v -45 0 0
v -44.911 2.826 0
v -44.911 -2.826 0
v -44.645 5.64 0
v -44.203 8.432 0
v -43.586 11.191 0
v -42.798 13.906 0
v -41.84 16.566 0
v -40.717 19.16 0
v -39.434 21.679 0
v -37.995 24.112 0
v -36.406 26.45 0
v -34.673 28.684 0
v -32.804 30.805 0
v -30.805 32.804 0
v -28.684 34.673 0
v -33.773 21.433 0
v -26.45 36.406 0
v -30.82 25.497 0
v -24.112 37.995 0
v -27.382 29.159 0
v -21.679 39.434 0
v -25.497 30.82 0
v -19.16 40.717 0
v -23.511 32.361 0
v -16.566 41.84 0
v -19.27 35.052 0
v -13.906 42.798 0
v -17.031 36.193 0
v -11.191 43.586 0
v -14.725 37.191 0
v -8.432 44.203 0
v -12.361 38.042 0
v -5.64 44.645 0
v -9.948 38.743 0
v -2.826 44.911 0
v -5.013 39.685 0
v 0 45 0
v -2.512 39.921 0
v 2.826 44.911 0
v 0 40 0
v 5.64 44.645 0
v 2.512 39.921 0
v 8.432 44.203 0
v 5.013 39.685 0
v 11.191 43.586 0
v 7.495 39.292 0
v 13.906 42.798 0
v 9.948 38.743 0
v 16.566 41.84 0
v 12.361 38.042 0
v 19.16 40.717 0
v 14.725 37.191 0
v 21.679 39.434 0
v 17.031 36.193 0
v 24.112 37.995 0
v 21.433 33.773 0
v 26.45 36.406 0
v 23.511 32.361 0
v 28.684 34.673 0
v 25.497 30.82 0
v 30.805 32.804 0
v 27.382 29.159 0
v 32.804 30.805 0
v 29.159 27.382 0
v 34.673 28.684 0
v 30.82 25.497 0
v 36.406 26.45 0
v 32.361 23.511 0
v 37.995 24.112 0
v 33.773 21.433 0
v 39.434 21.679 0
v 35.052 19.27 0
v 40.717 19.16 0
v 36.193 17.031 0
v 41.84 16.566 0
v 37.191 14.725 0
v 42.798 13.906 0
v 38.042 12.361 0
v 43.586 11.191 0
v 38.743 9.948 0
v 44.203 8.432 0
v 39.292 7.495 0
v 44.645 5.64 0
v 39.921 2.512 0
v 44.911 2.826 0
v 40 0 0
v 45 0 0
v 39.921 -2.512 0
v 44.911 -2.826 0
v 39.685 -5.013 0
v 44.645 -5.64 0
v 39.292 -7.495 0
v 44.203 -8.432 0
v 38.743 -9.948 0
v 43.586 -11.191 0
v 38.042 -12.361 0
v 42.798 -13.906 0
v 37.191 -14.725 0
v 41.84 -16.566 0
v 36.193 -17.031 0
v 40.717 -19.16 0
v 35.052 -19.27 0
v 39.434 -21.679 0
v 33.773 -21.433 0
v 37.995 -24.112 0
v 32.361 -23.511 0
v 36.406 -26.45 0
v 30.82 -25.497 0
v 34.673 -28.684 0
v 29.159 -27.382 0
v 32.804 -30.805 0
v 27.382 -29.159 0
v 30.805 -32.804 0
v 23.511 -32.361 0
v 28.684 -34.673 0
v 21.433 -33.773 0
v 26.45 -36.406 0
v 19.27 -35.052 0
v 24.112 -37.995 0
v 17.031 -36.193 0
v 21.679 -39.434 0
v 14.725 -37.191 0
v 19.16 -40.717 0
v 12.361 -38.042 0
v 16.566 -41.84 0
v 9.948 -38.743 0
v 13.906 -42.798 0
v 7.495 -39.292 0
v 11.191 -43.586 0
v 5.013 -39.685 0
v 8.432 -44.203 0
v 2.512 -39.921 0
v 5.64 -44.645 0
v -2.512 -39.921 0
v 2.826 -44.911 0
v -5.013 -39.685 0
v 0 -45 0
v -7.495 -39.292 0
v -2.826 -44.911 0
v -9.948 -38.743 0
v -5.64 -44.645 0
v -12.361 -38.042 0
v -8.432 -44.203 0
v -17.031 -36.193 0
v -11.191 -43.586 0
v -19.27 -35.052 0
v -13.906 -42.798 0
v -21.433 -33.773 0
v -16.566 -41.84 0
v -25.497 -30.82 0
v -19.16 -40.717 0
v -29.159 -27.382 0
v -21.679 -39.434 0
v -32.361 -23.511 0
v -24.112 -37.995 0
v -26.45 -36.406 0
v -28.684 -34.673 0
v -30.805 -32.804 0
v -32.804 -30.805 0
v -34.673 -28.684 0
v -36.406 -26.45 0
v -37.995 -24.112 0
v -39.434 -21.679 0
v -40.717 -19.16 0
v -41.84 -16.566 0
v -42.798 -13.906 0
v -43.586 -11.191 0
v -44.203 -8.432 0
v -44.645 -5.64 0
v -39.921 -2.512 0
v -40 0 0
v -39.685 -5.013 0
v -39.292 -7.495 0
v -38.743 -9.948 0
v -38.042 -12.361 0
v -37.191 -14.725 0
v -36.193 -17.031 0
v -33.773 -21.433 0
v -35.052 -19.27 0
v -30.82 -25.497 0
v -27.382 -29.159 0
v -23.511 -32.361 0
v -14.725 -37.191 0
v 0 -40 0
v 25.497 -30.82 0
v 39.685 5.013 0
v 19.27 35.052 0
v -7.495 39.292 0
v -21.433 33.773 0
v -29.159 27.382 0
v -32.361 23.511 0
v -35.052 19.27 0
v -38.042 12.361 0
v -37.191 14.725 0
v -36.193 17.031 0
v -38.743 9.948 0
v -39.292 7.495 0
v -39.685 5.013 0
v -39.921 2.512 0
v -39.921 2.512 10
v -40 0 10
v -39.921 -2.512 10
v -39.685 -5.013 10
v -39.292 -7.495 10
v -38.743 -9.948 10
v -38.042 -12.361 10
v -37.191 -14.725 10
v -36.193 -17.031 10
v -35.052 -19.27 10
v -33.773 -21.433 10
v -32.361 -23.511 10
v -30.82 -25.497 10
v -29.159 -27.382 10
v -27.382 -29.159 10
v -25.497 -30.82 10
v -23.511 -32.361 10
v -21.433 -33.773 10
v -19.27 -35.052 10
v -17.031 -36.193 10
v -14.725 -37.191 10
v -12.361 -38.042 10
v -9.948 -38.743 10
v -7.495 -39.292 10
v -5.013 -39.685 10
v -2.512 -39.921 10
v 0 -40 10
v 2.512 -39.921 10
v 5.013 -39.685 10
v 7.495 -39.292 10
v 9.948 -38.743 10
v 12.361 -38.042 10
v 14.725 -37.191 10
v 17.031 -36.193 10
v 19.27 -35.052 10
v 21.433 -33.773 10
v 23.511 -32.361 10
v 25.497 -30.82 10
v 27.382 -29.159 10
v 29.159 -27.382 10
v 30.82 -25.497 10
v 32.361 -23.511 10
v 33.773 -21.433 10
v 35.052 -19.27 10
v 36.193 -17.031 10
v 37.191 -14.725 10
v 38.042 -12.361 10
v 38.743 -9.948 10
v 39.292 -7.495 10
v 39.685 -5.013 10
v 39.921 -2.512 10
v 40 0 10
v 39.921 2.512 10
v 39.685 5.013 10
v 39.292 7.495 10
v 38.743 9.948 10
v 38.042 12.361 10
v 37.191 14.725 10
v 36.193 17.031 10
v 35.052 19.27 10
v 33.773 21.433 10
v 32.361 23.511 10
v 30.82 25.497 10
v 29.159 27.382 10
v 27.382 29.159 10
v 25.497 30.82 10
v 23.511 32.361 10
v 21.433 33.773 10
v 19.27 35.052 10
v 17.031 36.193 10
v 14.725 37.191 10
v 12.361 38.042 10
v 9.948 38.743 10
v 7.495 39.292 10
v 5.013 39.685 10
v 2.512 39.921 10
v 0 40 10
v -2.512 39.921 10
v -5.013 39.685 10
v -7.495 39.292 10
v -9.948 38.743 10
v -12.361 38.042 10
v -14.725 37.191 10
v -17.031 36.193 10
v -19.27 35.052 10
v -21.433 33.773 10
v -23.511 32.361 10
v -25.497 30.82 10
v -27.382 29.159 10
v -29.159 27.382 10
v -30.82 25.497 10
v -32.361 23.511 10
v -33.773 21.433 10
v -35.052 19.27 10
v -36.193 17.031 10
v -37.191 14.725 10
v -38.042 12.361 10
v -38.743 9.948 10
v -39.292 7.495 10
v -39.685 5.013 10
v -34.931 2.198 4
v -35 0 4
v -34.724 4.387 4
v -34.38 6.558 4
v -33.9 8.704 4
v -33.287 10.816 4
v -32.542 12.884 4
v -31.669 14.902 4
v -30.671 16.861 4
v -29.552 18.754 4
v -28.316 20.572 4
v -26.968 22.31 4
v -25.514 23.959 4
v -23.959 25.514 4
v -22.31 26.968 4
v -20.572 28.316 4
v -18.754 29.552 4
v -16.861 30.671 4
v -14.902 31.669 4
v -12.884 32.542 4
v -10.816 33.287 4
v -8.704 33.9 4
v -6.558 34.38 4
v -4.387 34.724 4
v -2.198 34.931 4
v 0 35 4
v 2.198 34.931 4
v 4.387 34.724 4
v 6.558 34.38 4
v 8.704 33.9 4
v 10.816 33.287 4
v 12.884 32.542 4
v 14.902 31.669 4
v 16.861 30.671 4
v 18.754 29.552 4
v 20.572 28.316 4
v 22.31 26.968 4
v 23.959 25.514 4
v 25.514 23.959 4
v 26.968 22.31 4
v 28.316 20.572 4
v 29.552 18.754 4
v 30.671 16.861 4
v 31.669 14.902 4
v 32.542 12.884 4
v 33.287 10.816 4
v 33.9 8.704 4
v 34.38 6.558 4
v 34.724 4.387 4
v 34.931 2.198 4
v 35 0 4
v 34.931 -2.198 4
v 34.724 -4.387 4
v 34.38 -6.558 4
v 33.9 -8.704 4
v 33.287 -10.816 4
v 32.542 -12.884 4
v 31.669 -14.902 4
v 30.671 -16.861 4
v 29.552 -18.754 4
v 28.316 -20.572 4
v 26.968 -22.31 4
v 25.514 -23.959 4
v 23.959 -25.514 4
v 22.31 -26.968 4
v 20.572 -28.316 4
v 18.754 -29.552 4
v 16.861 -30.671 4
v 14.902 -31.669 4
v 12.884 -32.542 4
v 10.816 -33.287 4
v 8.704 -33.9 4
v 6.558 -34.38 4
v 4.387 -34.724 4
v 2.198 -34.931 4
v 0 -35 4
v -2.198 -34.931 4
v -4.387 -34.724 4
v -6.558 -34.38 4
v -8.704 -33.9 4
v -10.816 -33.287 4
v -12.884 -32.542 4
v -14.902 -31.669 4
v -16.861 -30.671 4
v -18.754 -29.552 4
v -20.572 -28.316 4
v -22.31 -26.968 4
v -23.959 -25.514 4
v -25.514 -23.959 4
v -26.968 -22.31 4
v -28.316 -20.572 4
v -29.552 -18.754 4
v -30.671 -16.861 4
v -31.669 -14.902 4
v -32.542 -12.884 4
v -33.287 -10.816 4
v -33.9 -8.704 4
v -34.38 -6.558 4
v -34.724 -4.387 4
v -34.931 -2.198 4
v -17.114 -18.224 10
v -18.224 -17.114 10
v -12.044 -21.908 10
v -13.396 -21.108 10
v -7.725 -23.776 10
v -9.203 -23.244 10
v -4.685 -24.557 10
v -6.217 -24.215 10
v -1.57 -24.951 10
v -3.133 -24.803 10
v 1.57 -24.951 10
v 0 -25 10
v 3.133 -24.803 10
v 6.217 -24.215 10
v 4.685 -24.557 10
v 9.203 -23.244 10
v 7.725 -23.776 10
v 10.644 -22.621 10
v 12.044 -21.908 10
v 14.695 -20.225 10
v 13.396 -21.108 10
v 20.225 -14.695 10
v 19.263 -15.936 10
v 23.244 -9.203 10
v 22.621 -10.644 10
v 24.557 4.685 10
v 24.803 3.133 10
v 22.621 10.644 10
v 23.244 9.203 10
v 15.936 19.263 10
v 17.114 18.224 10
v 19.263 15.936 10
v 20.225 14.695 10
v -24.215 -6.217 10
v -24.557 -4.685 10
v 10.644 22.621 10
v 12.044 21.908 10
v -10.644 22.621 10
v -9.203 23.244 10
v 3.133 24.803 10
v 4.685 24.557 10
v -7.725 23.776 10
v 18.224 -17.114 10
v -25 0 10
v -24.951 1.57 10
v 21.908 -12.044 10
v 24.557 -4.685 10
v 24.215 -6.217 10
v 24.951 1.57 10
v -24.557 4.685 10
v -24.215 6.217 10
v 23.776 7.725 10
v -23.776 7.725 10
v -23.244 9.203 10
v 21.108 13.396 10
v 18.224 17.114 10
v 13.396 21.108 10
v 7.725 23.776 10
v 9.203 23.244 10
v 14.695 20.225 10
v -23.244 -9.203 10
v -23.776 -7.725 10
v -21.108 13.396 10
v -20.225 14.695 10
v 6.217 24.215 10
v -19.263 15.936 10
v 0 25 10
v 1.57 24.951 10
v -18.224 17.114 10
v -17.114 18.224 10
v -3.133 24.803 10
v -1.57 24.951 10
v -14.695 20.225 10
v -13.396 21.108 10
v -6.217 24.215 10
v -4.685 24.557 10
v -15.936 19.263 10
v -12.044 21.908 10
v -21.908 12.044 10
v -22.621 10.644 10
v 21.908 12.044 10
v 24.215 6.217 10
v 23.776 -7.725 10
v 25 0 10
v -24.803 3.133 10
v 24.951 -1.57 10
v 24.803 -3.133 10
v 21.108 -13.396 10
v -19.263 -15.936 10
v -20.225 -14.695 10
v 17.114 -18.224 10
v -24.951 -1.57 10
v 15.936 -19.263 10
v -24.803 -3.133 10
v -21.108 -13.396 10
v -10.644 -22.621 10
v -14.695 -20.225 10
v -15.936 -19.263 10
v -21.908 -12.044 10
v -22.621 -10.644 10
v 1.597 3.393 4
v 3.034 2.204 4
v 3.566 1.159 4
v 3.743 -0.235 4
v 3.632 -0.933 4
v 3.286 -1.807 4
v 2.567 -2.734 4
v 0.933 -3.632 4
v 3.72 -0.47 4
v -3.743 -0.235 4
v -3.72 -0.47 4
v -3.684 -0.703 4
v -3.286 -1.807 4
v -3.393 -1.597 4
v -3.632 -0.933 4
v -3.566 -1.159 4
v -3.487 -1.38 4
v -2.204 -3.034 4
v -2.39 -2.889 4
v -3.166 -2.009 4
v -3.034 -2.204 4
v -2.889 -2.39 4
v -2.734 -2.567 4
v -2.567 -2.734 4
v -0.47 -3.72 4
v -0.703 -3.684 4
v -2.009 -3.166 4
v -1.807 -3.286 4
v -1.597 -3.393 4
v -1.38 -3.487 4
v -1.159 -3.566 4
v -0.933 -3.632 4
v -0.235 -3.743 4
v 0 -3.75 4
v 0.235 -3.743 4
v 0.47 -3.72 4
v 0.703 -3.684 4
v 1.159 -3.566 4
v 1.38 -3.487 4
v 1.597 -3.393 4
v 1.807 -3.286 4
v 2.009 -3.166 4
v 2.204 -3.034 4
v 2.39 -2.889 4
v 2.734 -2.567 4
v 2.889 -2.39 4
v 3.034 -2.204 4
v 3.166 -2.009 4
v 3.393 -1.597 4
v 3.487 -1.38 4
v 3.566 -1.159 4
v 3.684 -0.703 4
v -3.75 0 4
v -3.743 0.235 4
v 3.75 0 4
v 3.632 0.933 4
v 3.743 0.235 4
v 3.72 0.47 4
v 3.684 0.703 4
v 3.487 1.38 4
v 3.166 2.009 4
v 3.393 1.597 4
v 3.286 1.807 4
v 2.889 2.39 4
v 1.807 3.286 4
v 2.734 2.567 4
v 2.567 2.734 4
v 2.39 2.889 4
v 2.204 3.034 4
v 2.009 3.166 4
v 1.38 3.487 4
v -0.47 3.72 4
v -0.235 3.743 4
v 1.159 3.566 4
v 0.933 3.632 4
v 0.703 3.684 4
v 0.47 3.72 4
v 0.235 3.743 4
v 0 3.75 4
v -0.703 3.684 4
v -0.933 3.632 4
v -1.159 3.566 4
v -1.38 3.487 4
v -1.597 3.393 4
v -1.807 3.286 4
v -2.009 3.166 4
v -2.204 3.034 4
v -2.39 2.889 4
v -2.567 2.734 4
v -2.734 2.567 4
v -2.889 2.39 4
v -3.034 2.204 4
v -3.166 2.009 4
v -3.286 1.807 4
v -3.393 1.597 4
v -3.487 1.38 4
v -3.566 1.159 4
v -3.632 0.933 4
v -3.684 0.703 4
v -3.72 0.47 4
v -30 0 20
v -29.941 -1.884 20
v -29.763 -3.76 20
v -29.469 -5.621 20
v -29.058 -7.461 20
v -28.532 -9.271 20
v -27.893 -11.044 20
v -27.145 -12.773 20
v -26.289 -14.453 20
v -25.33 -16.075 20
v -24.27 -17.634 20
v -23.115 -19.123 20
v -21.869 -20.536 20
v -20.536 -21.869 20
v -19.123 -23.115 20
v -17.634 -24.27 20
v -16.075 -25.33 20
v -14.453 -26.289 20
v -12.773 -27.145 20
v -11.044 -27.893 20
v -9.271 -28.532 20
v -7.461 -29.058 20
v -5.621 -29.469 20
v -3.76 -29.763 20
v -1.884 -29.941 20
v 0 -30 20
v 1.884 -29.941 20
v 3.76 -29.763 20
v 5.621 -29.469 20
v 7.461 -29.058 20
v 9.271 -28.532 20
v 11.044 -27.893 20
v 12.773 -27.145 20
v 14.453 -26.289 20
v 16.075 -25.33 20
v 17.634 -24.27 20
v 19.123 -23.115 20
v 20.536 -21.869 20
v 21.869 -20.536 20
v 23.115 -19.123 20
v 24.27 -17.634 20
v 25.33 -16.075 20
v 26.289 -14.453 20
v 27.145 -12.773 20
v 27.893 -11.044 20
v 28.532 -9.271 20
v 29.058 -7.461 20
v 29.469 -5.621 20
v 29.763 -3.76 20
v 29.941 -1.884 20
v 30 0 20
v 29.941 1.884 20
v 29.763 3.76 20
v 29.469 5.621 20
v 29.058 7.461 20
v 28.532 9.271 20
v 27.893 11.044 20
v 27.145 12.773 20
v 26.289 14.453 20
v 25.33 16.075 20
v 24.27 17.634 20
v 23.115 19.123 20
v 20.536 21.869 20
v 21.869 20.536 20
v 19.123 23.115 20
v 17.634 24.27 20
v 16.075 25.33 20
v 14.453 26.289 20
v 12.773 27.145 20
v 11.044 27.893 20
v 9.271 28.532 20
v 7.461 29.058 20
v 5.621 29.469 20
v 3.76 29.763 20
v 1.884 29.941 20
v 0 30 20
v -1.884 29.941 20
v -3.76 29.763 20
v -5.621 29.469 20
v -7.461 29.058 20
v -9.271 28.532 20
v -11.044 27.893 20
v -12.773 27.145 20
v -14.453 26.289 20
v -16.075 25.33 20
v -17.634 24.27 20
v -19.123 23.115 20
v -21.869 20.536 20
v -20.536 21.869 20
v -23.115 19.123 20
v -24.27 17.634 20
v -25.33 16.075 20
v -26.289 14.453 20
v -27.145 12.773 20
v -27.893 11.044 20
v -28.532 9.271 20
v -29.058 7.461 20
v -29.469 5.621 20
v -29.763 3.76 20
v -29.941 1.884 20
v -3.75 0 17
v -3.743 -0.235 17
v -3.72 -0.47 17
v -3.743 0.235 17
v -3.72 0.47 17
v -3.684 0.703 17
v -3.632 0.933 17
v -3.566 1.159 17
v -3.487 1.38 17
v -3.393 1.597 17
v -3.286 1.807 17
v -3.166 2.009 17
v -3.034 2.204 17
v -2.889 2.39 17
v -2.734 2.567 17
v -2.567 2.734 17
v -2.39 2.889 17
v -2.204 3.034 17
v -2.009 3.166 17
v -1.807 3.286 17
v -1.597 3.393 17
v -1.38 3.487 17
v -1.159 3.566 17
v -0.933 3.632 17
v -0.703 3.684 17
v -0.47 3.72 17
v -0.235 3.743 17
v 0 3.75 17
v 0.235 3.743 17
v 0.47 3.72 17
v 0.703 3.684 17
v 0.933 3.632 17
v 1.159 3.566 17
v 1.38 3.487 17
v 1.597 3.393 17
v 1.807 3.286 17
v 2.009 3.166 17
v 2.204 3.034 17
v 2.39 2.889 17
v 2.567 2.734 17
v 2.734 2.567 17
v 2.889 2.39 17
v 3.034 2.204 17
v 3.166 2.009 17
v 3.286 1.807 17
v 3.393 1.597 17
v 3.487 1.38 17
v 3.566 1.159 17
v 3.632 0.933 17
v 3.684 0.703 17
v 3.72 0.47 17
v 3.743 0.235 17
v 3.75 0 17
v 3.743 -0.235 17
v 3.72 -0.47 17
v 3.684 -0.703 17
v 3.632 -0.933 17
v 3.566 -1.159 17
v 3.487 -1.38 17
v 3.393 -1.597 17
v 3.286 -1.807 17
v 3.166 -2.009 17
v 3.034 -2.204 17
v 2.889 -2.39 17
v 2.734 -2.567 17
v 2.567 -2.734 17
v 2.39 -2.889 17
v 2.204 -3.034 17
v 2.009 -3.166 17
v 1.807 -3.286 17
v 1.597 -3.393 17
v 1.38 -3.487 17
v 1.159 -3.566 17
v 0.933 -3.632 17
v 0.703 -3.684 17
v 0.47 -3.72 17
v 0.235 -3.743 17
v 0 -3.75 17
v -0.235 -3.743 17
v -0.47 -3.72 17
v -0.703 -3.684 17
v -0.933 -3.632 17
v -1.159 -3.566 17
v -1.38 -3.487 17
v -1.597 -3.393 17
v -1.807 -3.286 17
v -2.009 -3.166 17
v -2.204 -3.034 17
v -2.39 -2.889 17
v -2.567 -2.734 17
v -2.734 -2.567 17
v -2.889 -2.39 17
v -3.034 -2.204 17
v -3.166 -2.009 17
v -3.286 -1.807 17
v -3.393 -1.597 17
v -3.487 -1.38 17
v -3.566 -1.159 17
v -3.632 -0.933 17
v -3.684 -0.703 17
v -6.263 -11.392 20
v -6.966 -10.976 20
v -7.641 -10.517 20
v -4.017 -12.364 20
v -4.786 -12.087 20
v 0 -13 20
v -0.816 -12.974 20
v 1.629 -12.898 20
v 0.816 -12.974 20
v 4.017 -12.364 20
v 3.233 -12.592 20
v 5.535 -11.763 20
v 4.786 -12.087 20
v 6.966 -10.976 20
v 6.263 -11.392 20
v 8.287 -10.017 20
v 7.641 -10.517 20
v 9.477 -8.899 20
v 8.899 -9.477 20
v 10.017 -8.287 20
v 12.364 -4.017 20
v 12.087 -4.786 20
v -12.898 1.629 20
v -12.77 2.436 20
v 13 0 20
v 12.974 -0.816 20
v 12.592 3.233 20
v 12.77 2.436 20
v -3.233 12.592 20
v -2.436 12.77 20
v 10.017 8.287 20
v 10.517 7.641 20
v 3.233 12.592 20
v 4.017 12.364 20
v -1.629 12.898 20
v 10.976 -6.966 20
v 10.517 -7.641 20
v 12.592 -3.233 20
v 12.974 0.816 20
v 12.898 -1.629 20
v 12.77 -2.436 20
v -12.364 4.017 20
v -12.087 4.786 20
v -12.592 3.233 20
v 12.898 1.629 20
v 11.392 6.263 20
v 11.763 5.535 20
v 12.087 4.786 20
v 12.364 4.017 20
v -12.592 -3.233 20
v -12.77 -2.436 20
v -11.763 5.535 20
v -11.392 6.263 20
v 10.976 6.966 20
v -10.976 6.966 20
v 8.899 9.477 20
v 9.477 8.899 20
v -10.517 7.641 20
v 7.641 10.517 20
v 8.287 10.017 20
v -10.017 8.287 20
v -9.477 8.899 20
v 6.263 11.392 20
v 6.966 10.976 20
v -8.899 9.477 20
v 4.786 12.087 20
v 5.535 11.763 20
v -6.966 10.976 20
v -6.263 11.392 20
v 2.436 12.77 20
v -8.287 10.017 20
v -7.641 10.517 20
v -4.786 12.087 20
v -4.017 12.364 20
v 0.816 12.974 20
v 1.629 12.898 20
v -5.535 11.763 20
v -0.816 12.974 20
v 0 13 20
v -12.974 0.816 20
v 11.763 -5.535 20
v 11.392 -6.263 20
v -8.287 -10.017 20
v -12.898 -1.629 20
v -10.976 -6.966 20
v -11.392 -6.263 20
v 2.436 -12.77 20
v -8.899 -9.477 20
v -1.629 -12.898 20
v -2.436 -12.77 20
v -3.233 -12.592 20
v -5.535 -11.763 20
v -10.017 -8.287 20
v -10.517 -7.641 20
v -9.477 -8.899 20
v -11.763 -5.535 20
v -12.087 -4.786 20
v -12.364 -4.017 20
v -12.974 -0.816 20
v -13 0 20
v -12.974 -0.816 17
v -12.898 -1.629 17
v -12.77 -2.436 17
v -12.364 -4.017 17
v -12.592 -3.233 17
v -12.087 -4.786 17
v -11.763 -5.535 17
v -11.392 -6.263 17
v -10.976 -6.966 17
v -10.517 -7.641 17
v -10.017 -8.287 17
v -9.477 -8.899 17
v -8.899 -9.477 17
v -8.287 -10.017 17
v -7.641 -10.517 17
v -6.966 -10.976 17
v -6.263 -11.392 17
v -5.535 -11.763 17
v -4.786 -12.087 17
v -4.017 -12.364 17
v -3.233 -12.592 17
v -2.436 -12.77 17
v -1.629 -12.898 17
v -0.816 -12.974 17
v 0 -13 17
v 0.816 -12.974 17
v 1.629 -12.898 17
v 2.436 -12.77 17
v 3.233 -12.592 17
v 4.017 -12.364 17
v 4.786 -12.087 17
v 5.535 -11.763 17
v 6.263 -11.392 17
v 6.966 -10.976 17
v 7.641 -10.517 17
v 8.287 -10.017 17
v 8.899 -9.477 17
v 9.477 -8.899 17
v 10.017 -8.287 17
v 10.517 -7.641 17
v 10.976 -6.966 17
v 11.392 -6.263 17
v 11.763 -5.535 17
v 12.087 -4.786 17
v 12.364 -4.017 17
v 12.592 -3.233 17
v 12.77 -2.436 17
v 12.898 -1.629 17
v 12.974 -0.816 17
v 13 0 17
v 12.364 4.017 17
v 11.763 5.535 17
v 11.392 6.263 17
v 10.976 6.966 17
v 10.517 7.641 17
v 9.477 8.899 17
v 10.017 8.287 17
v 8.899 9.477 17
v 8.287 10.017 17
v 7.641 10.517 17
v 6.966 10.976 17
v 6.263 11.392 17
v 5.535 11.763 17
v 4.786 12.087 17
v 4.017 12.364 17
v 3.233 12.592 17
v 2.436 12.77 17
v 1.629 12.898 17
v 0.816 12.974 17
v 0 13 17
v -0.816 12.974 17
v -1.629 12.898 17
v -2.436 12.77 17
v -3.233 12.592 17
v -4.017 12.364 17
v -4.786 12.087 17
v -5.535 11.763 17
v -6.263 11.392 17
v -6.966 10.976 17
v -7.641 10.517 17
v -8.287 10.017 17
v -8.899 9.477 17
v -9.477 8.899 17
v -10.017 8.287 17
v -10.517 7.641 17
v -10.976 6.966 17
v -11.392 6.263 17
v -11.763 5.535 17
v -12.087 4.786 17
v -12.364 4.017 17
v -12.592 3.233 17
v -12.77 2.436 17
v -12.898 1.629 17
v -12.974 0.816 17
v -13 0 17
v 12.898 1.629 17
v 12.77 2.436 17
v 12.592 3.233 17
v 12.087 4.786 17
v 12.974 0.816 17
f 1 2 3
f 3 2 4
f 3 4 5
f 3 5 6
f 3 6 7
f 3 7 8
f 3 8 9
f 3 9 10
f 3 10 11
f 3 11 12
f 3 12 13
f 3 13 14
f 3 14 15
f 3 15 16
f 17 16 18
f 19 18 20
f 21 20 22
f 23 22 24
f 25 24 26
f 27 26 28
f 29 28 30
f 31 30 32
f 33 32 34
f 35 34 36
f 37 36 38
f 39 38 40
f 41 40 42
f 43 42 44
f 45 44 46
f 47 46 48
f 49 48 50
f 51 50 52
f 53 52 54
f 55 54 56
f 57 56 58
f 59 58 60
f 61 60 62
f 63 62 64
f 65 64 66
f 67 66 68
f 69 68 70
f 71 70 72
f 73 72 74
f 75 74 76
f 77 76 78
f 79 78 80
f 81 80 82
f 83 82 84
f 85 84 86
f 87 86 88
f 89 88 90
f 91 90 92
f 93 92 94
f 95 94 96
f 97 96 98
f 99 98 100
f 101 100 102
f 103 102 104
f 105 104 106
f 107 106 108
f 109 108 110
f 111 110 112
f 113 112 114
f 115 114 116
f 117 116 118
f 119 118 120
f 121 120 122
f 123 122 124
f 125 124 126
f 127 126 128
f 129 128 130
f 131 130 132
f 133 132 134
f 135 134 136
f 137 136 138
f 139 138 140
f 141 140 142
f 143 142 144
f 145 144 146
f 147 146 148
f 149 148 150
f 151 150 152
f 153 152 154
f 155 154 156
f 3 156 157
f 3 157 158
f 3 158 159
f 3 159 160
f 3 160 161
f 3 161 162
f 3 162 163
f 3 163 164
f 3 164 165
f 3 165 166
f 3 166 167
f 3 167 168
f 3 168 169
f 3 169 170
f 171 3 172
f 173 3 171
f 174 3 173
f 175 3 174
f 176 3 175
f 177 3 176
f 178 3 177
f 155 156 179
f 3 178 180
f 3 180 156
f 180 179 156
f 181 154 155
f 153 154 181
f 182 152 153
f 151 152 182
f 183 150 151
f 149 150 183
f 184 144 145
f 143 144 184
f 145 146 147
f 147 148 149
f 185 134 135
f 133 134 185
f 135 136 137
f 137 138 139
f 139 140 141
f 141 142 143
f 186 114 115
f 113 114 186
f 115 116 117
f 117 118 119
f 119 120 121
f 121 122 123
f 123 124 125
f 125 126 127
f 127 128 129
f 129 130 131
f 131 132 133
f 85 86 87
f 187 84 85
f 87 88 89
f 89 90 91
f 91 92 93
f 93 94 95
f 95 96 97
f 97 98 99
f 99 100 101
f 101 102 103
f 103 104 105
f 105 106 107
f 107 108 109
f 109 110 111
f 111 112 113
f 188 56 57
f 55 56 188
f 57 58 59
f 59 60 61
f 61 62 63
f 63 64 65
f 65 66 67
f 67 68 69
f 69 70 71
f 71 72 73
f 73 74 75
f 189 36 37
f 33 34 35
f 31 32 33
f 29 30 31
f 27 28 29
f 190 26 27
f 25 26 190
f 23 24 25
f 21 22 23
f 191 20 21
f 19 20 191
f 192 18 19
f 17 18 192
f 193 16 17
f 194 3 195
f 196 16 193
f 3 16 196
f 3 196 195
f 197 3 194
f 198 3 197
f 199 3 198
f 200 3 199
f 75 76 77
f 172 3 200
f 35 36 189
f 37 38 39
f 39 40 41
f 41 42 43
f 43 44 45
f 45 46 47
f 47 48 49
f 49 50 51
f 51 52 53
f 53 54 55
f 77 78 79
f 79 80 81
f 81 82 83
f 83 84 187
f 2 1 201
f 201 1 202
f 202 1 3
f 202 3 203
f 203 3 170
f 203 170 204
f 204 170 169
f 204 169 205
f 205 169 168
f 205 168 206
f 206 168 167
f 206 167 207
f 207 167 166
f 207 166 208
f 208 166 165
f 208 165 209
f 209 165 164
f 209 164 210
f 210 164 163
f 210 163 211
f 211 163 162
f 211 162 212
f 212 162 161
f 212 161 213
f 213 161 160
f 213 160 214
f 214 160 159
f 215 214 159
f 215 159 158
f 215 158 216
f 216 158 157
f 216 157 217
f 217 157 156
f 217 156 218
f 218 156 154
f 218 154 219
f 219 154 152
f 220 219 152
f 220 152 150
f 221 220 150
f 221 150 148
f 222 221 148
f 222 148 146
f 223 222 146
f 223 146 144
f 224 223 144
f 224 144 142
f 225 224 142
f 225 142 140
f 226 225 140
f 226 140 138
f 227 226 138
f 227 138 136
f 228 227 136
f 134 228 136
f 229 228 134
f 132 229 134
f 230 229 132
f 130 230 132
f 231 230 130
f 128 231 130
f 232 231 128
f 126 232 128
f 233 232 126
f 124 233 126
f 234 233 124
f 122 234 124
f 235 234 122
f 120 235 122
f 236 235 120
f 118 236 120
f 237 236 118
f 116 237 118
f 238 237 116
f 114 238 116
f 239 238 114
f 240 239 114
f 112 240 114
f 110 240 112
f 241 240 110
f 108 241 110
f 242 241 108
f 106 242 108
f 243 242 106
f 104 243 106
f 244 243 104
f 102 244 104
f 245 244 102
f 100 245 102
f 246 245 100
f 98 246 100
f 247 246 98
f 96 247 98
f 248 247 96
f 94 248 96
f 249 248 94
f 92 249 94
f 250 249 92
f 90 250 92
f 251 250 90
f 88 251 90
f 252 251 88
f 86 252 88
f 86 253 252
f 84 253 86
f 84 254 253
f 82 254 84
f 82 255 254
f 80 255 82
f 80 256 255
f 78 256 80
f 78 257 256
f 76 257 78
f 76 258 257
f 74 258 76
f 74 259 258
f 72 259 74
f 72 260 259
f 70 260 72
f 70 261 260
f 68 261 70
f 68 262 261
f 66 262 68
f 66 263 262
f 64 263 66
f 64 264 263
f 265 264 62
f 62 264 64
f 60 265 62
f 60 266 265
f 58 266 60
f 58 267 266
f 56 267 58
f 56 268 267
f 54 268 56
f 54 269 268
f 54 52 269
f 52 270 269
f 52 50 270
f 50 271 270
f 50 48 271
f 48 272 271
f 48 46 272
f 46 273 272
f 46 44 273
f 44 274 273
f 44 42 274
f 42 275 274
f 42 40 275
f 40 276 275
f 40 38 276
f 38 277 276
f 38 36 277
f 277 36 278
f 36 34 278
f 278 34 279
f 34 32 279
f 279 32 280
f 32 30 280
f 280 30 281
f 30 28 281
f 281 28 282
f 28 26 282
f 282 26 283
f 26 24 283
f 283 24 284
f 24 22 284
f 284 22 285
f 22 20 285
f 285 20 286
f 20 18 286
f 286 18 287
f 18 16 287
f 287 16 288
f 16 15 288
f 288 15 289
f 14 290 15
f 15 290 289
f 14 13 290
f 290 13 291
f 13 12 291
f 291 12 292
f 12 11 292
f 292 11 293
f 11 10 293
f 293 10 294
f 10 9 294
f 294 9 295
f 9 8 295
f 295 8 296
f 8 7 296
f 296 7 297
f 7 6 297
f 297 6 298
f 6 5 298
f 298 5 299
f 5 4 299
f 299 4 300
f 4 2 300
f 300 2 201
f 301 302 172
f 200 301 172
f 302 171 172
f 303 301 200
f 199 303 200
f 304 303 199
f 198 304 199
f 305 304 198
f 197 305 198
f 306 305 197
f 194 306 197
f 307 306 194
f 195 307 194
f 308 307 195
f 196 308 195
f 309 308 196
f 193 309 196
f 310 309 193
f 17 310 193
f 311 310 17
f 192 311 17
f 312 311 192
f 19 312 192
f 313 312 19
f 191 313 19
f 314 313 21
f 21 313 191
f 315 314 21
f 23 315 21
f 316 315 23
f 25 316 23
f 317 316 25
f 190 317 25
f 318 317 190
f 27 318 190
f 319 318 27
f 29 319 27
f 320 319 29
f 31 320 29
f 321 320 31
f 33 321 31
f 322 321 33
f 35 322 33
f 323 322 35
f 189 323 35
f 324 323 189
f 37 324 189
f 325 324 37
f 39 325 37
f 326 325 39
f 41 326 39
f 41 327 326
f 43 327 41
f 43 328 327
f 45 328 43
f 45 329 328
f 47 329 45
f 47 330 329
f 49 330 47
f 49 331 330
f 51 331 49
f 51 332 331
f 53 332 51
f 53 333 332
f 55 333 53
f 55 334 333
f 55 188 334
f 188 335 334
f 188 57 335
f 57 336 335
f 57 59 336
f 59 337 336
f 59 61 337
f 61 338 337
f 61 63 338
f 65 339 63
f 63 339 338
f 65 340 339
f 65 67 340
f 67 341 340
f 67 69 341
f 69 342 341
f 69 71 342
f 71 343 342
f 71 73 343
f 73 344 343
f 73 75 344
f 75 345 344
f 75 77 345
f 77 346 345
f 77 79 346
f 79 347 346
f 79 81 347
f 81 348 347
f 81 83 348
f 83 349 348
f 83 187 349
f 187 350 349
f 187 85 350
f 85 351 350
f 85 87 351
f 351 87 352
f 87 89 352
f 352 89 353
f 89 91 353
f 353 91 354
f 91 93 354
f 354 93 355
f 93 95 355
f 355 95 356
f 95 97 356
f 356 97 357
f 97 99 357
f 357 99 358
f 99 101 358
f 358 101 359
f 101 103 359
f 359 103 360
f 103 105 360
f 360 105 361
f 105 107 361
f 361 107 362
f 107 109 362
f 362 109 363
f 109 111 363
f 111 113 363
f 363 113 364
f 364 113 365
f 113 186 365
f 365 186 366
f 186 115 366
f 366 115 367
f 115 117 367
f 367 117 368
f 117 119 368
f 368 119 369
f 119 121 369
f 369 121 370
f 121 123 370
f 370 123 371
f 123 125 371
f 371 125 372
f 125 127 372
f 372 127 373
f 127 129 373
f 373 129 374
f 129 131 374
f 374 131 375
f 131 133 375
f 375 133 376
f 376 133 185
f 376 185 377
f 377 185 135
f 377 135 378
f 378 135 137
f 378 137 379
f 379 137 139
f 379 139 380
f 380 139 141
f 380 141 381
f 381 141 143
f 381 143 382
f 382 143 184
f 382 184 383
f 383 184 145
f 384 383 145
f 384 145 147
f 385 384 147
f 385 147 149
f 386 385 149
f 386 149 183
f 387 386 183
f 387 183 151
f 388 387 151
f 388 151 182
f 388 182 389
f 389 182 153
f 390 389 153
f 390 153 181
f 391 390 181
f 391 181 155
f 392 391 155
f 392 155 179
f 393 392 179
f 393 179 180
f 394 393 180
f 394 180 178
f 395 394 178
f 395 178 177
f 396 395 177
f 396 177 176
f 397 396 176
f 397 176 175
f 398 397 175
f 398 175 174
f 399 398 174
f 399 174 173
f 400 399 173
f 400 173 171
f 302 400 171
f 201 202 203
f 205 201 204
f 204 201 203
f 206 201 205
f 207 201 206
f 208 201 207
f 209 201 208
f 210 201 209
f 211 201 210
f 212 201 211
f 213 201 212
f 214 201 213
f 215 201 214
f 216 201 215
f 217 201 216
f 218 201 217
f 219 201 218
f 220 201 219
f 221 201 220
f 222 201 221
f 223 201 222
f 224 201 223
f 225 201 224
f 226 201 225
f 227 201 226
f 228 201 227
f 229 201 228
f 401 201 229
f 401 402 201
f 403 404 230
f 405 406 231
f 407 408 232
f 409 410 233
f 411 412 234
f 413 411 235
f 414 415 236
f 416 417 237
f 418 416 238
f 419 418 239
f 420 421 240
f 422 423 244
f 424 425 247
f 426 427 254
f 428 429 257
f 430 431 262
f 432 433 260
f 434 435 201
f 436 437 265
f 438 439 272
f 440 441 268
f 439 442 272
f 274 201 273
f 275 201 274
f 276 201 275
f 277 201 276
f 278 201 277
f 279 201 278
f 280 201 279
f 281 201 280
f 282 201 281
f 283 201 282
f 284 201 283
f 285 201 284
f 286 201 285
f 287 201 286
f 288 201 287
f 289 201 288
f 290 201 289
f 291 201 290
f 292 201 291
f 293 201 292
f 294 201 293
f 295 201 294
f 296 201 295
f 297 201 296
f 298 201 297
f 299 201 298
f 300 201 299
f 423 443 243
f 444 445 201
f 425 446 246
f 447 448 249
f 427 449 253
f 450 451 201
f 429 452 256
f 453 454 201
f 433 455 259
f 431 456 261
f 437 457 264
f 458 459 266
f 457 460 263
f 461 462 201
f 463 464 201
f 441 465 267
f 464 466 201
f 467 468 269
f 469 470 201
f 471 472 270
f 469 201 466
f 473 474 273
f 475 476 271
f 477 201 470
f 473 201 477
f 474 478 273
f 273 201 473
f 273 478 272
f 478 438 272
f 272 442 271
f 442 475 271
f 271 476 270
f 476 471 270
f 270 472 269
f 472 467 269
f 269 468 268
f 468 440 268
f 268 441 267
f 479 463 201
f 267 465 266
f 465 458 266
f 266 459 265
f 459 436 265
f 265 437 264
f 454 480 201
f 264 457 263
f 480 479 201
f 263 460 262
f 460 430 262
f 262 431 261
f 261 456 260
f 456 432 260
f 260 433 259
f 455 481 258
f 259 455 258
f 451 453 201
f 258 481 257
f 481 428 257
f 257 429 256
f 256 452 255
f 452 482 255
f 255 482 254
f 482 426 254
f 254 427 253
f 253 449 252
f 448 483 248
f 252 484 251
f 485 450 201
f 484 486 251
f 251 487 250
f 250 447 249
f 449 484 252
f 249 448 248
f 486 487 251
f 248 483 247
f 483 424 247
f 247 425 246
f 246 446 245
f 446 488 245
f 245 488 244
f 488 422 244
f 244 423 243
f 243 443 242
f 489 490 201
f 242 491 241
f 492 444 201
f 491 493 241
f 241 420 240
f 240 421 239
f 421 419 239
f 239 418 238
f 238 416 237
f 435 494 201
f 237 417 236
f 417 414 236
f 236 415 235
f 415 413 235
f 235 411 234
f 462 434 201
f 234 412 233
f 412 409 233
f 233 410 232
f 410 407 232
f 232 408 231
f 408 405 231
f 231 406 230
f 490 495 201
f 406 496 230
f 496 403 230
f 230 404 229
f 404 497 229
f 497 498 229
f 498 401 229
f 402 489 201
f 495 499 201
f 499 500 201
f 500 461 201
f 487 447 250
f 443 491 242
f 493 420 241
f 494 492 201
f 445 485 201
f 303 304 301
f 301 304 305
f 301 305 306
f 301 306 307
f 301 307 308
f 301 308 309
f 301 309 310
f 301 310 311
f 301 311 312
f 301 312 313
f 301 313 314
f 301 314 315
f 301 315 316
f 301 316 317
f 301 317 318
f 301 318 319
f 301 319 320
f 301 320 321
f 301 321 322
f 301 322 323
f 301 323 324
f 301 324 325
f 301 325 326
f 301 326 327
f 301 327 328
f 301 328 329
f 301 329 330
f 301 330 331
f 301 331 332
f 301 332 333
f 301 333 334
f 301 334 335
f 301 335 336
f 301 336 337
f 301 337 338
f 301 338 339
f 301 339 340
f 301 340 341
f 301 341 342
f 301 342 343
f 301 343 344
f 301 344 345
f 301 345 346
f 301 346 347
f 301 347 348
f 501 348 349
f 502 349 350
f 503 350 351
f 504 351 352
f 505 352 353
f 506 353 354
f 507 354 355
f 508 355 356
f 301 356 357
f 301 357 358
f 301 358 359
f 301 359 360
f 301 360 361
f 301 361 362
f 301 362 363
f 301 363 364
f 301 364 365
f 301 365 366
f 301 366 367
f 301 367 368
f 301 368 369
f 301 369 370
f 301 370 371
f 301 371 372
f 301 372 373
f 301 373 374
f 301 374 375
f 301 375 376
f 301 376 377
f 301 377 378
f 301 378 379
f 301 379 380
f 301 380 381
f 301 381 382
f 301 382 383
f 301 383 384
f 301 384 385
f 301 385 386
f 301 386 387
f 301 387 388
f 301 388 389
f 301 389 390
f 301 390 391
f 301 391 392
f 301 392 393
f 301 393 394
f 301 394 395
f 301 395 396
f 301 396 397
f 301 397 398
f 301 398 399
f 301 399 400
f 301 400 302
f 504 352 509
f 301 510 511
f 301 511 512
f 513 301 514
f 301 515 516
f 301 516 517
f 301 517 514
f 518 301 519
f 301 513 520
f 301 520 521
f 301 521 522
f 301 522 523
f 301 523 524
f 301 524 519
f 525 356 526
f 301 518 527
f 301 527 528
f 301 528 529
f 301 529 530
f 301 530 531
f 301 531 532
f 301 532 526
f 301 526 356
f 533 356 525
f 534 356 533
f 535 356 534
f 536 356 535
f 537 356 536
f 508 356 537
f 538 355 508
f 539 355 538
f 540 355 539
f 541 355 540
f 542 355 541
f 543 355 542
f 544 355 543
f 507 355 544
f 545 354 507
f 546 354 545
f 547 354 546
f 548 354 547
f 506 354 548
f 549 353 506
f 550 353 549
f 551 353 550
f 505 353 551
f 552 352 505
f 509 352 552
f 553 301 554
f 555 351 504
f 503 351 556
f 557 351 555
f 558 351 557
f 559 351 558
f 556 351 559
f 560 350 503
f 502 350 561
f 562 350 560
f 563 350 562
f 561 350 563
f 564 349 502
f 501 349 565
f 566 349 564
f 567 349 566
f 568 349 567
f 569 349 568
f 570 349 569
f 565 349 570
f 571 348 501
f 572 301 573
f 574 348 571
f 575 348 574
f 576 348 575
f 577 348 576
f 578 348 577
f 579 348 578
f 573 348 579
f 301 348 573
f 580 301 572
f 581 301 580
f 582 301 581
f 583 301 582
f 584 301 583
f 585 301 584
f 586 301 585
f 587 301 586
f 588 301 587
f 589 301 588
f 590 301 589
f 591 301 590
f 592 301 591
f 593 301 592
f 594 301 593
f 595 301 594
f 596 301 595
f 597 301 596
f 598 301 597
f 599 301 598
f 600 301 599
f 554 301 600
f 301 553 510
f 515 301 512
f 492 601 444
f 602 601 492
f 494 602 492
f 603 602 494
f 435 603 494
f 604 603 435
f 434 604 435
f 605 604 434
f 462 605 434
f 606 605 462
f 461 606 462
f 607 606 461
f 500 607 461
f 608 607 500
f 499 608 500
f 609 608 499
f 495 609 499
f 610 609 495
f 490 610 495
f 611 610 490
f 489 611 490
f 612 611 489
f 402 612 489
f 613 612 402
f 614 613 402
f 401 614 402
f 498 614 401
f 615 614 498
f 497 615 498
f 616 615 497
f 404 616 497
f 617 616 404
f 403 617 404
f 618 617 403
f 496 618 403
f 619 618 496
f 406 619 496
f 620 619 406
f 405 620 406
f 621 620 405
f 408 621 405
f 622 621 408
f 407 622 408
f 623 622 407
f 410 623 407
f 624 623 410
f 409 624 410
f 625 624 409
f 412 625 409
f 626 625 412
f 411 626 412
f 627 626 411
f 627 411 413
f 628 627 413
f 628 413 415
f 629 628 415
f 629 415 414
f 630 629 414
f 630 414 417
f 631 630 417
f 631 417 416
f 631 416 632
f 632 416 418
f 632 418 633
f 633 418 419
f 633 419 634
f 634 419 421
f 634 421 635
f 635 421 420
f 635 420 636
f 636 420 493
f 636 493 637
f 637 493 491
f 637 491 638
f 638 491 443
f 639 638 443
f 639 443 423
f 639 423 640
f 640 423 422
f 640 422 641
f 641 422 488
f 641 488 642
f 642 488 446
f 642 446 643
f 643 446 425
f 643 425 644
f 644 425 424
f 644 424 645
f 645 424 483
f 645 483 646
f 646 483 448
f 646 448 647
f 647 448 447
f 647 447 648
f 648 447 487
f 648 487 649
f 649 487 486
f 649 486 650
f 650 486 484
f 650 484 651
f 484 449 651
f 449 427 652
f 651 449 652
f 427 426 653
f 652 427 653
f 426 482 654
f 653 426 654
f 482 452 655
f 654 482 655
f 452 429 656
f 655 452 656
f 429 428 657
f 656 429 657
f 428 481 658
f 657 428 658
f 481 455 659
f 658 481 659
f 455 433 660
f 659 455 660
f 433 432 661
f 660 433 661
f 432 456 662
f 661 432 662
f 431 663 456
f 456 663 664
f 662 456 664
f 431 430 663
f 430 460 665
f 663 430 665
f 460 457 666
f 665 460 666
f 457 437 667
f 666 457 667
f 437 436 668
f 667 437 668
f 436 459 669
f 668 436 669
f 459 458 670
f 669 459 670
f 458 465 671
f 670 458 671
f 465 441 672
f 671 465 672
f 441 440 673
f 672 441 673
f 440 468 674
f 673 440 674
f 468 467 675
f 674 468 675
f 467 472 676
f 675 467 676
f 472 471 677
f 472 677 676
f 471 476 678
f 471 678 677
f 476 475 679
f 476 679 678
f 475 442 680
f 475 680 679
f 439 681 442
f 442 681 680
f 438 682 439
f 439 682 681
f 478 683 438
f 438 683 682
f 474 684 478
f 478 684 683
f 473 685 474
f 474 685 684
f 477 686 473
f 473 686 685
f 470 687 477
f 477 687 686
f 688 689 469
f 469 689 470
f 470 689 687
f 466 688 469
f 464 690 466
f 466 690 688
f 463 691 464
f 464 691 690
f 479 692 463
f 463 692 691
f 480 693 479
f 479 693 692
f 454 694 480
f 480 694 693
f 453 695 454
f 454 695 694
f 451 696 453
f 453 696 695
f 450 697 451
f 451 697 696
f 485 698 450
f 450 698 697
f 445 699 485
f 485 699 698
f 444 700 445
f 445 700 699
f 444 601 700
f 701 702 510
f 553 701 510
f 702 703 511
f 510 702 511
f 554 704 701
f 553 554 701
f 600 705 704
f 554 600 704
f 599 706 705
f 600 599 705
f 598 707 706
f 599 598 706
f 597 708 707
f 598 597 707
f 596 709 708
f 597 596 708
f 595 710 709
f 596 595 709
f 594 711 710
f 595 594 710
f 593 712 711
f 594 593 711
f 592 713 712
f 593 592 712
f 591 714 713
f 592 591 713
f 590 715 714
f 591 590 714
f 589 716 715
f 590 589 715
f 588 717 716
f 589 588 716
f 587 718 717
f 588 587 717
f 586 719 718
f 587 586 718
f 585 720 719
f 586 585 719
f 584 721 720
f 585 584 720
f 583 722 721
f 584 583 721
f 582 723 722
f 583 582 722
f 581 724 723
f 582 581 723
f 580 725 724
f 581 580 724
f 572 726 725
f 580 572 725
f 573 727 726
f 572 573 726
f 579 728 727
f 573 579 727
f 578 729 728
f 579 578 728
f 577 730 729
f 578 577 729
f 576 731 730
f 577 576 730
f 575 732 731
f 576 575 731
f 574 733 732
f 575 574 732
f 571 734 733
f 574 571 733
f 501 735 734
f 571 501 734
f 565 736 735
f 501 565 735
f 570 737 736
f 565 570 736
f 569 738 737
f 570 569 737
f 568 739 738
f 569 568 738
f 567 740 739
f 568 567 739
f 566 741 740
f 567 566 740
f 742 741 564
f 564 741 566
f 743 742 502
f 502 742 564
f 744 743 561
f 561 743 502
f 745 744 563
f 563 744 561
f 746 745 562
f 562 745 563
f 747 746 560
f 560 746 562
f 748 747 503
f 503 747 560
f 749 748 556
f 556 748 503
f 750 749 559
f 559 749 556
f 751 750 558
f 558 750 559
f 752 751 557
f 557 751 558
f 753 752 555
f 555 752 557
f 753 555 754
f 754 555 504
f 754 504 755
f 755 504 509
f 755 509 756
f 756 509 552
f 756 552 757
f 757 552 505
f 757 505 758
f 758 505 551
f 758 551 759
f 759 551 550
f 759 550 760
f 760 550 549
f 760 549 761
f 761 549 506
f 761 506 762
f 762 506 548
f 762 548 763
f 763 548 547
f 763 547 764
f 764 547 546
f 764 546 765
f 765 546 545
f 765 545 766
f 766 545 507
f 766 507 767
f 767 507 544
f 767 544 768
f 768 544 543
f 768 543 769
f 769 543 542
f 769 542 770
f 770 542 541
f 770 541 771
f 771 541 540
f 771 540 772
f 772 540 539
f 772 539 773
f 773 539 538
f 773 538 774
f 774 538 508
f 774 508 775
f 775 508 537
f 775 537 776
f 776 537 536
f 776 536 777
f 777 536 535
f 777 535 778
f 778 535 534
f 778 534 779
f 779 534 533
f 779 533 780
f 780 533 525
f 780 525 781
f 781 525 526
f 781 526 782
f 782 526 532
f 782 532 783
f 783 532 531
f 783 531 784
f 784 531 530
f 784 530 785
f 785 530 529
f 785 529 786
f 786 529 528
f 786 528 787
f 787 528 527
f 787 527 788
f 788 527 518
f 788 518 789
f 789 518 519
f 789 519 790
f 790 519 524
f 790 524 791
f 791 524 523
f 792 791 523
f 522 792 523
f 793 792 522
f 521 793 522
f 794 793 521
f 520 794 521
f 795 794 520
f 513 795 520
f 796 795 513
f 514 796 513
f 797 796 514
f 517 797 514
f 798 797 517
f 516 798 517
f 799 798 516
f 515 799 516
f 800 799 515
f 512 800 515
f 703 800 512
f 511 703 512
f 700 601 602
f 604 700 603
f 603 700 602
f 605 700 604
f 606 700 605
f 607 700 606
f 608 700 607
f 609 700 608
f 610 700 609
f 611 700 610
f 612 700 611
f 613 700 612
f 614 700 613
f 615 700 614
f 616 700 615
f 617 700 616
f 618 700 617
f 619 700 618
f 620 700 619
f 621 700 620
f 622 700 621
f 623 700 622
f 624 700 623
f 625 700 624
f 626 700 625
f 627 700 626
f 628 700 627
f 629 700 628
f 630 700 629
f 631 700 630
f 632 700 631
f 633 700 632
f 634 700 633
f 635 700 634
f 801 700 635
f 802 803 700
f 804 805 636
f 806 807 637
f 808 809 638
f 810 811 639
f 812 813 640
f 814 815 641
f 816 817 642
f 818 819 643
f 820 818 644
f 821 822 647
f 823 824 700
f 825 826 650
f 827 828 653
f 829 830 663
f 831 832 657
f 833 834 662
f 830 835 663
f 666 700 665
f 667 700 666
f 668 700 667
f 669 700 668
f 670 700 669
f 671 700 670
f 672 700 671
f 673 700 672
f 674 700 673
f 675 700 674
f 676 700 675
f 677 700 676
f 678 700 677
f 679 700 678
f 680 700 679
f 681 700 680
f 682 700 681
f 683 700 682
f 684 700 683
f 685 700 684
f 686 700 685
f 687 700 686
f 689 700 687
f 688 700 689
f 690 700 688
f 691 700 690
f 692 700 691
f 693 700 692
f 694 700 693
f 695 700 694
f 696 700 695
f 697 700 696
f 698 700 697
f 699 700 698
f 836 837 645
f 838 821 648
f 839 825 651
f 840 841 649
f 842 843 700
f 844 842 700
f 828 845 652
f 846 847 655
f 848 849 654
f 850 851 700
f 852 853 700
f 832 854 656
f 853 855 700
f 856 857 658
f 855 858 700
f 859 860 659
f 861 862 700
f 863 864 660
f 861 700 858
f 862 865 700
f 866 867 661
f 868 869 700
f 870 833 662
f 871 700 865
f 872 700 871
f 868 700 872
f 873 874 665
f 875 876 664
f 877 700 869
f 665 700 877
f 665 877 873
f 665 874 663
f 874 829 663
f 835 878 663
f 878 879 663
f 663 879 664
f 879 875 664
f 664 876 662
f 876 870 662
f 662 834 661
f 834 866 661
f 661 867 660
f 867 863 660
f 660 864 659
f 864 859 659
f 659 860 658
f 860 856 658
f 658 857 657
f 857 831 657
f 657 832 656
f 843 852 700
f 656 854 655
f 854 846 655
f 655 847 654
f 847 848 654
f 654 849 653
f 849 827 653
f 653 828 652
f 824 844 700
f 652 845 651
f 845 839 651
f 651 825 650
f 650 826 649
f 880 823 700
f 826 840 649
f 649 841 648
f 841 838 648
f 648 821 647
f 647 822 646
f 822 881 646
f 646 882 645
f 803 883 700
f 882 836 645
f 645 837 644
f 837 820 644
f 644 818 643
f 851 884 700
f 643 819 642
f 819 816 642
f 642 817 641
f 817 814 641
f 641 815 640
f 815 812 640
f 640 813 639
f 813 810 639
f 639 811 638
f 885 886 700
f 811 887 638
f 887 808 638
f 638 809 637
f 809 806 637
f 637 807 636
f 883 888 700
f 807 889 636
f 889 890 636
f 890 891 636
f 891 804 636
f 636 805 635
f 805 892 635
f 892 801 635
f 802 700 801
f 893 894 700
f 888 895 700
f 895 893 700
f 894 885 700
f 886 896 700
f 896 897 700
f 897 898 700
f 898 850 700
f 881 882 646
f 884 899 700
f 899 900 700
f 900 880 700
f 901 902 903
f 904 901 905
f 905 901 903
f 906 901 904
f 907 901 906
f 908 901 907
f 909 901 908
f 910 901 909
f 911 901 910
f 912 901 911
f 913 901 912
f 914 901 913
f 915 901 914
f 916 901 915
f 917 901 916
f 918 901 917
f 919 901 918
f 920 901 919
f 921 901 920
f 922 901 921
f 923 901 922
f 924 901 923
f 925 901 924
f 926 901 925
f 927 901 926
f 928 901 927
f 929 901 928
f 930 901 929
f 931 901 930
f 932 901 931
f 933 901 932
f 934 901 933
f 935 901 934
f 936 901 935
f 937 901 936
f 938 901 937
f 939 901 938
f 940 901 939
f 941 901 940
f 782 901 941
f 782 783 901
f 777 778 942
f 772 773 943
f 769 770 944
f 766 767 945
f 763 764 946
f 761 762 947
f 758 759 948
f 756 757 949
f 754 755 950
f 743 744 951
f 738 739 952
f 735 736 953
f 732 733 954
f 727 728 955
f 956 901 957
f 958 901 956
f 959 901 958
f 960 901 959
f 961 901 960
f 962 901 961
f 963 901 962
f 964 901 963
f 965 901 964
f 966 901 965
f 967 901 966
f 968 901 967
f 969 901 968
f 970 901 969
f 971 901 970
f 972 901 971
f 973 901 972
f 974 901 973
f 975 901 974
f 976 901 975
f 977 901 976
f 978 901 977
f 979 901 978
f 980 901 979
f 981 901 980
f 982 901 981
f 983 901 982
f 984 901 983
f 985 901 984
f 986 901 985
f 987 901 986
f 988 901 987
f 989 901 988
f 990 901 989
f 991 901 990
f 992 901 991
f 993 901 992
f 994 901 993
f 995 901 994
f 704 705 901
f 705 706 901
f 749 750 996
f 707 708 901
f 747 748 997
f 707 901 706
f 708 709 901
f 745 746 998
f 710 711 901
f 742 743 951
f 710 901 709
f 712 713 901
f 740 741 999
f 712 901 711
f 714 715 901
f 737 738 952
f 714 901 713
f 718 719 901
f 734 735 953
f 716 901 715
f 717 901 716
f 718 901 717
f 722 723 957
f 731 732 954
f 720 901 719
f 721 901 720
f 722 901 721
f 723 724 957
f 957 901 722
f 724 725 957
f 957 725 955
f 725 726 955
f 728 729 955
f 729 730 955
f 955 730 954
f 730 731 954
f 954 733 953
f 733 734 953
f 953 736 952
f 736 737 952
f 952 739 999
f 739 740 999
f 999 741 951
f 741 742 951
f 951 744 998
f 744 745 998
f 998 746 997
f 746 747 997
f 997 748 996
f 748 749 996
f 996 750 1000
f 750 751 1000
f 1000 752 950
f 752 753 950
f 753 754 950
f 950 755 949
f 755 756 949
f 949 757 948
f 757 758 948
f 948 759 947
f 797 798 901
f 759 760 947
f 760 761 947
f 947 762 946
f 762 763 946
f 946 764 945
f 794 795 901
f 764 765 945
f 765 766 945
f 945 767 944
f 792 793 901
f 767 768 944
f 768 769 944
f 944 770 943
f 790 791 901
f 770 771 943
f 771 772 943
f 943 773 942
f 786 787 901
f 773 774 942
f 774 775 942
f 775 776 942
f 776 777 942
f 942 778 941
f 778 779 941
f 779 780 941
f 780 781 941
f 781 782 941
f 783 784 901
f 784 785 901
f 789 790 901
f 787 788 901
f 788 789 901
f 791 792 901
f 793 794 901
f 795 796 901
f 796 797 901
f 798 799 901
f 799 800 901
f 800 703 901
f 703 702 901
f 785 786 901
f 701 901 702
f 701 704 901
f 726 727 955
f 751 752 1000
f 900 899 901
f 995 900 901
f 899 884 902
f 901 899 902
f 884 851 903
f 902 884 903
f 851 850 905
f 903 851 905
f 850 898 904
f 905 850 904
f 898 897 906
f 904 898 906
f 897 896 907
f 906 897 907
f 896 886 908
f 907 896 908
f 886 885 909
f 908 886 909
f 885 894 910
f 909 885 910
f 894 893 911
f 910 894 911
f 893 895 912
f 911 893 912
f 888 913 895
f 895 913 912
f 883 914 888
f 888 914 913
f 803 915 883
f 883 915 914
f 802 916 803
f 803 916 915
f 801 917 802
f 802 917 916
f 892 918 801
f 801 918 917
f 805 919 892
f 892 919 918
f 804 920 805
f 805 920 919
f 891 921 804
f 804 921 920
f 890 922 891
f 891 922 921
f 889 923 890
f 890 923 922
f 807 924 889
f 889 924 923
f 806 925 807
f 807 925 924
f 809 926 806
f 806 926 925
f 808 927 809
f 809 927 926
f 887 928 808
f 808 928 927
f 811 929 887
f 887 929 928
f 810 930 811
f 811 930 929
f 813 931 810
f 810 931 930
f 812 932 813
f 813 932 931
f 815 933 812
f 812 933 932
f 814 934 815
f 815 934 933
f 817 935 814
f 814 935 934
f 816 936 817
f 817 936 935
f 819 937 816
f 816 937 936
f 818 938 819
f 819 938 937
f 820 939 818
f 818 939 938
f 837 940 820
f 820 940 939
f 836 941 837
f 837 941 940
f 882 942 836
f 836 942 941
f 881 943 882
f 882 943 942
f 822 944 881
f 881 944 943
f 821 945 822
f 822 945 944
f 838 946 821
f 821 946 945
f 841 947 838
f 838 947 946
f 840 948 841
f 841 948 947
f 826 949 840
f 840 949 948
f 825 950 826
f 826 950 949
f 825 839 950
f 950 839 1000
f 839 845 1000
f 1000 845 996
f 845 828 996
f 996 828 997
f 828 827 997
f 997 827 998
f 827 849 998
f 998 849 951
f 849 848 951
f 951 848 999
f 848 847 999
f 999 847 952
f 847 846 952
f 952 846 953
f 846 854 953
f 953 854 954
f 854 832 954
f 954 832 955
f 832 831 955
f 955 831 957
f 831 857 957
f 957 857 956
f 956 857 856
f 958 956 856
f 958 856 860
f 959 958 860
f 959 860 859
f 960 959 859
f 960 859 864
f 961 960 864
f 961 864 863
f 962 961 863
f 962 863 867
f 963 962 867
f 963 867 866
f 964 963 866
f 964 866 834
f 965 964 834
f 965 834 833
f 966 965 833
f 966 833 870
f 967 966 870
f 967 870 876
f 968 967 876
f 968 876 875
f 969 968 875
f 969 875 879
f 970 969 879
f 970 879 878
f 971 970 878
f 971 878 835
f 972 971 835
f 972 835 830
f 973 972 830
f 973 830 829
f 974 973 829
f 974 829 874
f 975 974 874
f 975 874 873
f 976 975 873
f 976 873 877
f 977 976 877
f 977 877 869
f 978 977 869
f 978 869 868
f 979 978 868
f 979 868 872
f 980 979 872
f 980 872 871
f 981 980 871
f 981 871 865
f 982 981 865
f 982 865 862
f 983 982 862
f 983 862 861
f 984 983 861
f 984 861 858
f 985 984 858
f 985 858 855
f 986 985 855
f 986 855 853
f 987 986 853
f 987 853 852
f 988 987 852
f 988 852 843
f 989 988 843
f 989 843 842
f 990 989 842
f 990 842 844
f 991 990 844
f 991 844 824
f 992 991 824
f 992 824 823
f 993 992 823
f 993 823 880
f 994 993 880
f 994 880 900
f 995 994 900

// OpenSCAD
// This is an adapter for a VPI record cleaner. The adapter is
// used to hold 45s. Normally this thing costs $30. Print one instead!

$fn=100;

module unit() {
    cylinder(r1=45, r2=40, h=10); // Main body


    difference() {
        translate([0, 0, 10])
        cylinder(r1=25, r2=30, h=10); // Handle part

        translate([0, 0, 17])
        cylinder(r=13, h=13); // Cut out for vpi screw down
    }
}


difference() {
    unit();

    cylinder(r1=40, r2=35, h=4); // Underside cut out
    
    cylinder(r=3.75, h=30); // screw hole
}
